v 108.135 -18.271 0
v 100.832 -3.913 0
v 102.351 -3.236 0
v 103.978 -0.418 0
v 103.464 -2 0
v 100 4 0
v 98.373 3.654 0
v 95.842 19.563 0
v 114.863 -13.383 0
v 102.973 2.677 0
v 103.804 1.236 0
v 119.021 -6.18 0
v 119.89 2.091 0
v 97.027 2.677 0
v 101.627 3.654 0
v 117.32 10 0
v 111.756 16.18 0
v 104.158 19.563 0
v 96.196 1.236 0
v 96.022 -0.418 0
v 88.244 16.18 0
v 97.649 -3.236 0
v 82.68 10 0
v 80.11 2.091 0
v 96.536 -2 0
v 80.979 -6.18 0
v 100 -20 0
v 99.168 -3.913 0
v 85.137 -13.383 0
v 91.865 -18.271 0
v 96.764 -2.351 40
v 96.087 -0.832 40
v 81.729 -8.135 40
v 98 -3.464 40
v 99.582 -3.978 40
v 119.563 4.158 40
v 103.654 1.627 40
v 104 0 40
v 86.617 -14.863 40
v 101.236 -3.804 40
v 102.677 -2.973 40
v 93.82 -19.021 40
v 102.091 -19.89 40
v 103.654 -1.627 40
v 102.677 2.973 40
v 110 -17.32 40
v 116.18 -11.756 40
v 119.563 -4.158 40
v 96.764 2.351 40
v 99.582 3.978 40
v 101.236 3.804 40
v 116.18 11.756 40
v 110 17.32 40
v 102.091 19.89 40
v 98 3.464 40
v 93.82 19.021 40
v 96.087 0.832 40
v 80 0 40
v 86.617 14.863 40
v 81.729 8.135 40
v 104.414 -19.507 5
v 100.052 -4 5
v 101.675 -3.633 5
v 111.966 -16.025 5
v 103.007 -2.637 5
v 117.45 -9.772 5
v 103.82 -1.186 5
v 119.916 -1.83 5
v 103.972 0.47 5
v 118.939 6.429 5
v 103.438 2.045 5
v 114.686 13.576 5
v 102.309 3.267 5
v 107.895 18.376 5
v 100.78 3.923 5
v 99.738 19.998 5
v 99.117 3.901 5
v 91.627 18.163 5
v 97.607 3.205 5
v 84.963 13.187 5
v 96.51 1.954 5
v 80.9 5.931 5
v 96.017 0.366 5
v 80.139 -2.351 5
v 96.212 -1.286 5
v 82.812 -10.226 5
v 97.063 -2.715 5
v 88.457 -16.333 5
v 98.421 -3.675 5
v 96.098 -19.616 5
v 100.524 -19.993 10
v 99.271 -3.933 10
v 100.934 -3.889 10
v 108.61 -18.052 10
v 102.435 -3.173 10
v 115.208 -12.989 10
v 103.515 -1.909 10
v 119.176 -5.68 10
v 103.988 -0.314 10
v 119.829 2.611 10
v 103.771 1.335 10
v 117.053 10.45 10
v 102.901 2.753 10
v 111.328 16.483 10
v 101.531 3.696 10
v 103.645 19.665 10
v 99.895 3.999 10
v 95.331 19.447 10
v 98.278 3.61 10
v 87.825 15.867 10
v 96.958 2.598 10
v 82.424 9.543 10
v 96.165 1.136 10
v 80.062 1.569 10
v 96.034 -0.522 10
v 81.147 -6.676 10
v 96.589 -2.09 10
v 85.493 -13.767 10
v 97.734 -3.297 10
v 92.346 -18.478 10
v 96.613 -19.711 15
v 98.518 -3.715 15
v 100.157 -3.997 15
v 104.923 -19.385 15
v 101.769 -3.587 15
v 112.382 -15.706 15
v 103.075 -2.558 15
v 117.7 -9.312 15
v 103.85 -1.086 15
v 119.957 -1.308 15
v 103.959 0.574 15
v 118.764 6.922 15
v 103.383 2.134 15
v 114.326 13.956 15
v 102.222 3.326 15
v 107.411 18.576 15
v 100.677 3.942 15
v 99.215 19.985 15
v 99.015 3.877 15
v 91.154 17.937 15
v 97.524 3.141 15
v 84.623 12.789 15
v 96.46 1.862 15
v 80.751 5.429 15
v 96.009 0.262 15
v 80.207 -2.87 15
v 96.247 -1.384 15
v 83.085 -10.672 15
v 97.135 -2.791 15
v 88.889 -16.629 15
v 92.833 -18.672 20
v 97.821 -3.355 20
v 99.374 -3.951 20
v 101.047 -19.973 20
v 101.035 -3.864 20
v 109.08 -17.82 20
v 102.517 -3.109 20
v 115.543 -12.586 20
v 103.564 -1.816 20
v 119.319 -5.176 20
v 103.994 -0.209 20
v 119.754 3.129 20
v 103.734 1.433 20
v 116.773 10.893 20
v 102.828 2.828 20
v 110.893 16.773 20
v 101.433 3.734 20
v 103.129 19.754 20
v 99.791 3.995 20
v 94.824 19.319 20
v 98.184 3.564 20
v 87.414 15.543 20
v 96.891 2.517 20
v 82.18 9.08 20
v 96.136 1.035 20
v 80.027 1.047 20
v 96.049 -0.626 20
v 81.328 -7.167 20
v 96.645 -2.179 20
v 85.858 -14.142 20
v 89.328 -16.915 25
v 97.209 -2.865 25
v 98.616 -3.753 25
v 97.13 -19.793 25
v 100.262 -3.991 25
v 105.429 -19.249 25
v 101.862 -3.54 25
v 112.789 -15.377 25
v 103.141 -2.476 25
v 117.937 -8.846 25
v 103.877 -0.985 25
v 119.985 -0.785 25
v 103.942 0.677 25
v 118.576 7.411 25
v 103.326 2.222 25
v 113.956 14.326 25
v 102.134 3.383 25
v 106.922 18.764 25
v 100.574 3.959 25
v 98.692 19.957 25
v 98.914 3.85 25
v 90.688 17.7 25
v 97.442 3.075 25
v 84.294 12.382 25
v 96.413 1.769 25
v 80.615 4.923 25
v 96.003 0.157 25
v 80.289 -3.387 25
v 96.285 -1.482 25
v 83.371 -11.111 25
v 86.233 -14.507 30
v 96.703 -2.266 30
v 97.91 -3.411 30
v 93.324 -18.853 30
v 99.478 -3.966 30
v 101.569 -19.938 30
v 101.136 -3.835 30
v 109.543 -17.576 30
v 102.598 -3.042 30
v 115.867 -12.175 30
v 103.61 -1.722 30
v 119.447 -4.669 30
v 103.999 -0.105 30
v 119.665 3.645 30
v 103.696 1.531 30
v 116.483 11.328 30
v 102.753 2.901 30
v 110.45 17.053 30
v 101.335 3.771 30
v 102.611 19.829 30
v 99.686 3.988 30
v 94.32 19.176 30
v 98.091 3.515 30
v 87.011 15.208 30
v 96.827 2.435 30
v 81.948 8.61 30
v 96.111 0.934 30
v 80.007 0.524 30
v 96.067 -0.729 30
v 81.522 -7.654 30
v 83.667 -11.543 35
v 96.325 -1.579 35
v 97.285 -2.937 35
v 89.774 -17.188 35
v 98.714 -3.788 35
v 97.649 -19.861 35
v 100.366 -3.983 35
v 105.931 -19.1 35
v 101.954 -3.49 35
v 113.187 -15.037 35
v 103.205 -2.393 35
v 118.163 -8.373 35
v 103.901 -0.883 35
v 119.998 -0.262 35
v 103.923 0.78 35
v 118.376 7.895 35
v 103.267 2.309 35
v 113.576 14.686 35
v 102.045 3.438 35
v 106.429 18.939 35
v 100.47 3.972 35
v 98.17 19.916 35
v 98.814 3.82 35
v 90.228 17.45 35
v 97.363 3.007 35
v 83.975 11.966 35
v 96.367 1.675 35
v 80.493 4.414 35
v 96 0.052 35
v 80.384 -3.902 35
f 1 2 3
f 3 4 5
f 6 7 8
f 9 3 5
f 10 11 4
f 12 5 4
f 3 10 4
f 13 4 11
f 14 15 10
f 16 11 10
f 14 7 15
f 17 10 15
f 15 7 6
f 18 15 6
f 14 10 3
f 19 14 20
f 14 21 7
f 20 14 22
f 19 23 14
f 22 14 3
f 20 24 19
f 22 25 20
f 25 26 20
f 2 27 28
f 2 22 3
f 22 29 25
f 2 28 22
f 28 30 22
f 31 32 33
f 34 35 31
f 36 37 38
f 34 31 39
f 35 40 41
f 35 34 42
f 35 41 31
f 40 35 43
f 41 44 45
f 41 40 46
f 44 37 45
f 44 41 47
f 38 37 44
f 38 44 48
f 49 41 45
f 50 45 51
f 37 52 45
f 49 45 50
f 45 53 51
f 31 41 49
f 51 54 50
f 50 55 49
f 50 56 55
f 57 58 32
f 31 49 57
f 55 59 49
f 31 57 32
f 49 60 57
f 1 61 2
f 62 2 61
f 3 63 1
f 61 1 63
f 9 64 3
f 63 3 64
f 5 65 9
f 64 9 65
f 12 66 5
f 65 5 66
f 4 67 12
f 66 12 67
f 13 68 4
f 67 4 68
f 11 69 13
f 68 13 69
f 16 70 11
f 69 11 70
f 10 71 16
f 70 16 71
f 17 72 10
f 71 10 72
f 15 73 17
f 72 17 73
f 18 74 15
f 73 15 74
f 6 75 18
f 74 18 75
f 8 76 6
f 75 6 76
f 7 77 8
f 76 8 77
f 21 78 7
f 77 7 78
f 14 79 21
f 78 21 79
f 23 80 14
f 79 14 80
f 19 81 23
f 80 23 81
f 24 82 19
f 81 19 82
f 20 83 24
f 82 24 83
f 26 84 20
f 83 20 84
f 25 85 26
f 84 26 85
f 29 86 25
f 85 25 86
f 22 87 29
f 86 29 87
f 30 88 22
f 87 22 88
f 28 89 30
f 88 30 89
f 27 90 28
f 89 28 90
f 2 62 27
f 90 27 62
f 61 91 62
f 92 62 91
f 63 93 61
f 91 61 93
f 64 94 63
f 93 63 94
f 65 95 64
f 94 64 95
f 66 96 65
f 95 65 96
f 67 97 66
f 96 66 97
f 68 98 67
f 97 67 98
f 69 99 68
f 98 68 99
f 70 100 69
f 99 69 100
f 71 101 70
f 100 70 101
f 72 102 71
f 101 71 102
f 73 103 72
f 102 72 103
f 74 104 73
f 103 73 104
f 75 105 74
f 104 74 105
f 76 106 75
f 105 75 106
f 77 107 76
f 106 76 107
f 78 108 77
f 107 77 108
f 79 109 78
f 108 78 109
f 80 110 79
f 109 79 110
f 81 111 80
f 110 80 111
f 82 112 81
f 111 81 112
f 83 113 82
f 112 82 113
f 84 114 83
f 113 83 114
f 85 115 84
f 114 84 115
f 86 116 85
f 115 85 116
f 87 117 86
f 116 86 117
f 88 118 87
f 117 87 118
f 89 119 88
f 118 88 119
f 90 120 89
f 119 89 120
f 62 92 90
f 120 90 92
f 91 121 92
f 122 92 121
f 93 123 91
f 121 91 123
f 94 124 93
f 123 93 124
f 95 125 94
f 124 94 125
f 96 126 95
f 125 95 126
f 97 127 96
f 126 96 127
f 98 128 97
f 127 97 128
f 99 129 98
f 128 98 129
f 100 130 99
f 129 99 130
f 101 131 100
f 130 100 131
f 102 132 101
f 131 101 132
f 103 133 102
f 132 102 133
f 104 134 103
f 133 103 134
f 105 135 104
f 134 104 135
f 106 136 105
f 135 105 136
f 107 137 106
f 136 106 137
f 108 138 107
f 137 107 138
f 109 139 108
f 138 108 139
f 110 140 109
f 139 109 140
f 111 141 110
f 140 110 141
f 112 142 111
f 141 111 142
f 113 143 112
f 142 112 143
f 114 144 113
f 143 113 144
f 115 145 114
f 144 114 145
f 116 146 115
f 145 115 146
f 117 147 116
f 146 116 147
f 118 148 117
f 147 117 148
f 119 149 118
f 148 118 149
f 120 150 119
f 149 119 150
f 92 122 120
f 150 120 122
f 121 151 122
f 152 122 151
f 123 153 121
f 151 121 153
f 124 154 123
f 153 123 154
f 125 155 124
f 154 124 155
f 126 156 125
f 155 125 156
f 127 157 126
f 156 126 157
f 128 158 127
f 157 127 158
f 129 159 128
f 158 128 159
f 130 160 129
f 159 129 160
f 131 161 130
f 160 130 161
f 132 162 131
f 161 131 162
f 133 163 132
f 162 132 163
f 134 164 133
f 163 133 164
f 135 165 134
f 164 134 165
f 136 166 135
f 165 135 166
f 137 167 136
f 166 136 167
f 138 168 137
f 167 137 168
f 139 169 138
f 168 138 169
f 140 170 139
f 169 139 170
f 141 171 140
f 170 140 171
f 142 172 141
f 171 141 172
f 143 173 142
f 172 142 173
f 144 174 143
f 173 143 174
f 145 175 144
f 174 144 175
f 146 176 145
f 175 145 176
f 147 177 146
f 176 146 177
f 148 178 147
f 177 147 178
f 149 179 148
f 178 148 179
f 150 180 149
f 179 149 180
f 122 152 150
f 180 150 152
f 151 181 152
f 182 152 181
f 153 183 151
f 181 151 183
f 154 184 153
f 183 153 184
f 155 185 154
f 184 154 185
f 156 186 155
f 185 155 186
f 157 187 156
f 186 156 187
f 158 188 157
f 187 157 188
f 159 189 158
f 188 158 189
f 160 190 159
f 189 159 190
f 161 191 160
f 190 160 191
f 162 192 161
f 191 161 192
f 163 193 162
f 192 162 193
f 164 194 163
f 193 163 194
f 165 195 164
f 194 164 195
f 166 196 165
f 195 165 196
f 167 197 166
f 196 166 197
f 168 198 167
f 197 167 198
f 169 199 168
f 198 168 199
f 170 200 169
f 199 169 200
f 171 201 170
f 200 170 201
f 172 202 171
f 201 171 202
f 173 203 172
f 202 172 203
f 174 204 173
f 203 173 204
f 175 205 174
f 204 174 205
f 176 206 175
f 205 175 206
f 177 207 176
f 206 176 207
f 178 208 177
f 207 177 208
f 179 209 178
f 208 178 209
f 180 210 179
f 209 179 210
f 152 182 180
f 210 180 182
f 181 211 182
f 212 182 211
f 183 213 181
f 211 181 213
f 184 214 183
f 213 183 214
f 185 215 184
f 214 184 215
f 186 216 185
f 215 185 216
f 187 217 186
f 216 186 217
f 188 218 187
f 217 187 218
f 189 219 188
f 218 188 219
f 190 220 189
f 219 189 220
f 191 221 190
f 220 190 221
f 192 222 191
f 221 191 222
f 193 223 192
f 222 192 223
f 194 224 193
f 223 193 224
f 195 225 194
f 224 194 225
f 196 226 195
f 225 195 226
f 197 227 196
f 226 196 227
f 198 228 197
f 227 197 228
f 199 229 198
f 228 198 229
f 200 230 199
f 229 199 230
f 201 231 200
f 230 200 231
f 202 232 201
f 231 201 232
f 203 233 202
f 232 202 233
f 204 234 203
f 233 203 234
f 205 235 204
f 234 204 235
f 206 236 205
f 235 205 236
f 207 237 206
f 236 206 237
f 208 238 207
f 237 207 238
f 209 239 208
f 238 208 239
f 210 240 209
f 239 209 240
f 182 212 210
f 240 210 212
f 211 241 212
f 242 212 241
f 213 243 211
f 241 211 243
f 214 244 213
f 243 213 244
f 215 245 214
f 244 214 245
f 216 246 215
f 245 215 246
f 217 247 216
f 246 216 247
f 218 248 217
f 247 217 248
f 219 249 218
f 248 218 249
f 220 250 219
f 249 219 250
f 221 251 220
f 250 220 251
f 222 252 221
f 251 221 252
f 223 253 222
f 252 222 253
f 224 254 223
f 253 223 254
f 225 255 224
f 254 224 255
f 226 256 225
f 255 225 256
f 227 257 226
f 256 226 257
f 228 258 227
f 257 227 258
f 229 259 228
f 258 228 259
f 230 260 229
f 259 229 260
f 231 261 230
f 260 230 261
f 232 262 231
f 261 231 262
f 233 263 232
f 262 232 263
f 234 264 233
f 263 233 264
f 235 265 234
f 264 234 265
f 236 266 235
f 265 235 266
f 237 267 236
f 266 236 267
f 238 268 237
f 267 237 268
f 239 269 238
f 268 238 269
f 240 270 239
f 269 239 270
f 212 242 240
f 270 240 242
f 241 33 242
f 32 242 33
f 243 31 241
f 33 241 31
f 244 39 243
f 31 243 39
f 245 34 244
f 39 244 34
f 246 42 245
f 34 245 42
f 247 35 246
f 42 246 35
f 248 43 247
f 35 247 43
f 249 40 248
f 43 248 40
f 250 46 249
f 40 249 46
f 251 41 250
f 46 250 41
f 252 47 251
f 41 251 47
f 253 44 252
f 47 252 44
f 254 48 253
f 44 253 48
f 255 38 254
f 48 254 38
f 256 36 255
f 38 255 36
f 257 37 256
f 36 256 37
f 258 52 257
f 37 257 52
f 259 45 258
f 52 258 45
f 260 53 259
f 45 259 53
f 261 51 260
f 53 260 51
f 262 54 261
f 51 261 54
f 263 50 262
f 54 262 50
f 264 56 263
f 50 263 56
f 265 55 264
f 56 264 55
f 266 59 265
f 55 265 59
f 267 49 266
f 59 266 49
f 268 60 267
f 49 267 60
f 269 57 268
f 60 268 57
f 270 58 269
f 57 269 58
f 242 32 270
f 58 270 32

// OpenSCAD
// parameter

star_edges = 30;
star_min = 4;
star_max = 20;

ex_height = 40;

// generate star shape polygon

star_shape =[
  for (i =[0:(star_edges*1)])
      if (i%2 == 0) [sin(i  *(360/ star_edges))*star_min, cos(i  *(360/ star_edges))*star_min]
      else [sin(i  *(360/ star_edges))*star_max, cos(i  *(360/ star_edges)) * star_max]

];

echo(star_shape);
//polygon(star_shape);

color("White") {
    linear_extrude(height=ex_height) {
        polygon(star_shape);
    }
}

!color("Green") {
    translate([100,0,0]) {
        linear_extrude(height=ex_height,twist=90, convexity = 10,center=false) {
            polygon(star_shape);
        }
    }
}

color("Blue") {
    translate([-100,0,0]) {
        linear_extrude(height=ex_height,twist=340, convexity = 10,center=false) {
            translate([20,0,0]) polygon(star_shape);
        }
    }
}
